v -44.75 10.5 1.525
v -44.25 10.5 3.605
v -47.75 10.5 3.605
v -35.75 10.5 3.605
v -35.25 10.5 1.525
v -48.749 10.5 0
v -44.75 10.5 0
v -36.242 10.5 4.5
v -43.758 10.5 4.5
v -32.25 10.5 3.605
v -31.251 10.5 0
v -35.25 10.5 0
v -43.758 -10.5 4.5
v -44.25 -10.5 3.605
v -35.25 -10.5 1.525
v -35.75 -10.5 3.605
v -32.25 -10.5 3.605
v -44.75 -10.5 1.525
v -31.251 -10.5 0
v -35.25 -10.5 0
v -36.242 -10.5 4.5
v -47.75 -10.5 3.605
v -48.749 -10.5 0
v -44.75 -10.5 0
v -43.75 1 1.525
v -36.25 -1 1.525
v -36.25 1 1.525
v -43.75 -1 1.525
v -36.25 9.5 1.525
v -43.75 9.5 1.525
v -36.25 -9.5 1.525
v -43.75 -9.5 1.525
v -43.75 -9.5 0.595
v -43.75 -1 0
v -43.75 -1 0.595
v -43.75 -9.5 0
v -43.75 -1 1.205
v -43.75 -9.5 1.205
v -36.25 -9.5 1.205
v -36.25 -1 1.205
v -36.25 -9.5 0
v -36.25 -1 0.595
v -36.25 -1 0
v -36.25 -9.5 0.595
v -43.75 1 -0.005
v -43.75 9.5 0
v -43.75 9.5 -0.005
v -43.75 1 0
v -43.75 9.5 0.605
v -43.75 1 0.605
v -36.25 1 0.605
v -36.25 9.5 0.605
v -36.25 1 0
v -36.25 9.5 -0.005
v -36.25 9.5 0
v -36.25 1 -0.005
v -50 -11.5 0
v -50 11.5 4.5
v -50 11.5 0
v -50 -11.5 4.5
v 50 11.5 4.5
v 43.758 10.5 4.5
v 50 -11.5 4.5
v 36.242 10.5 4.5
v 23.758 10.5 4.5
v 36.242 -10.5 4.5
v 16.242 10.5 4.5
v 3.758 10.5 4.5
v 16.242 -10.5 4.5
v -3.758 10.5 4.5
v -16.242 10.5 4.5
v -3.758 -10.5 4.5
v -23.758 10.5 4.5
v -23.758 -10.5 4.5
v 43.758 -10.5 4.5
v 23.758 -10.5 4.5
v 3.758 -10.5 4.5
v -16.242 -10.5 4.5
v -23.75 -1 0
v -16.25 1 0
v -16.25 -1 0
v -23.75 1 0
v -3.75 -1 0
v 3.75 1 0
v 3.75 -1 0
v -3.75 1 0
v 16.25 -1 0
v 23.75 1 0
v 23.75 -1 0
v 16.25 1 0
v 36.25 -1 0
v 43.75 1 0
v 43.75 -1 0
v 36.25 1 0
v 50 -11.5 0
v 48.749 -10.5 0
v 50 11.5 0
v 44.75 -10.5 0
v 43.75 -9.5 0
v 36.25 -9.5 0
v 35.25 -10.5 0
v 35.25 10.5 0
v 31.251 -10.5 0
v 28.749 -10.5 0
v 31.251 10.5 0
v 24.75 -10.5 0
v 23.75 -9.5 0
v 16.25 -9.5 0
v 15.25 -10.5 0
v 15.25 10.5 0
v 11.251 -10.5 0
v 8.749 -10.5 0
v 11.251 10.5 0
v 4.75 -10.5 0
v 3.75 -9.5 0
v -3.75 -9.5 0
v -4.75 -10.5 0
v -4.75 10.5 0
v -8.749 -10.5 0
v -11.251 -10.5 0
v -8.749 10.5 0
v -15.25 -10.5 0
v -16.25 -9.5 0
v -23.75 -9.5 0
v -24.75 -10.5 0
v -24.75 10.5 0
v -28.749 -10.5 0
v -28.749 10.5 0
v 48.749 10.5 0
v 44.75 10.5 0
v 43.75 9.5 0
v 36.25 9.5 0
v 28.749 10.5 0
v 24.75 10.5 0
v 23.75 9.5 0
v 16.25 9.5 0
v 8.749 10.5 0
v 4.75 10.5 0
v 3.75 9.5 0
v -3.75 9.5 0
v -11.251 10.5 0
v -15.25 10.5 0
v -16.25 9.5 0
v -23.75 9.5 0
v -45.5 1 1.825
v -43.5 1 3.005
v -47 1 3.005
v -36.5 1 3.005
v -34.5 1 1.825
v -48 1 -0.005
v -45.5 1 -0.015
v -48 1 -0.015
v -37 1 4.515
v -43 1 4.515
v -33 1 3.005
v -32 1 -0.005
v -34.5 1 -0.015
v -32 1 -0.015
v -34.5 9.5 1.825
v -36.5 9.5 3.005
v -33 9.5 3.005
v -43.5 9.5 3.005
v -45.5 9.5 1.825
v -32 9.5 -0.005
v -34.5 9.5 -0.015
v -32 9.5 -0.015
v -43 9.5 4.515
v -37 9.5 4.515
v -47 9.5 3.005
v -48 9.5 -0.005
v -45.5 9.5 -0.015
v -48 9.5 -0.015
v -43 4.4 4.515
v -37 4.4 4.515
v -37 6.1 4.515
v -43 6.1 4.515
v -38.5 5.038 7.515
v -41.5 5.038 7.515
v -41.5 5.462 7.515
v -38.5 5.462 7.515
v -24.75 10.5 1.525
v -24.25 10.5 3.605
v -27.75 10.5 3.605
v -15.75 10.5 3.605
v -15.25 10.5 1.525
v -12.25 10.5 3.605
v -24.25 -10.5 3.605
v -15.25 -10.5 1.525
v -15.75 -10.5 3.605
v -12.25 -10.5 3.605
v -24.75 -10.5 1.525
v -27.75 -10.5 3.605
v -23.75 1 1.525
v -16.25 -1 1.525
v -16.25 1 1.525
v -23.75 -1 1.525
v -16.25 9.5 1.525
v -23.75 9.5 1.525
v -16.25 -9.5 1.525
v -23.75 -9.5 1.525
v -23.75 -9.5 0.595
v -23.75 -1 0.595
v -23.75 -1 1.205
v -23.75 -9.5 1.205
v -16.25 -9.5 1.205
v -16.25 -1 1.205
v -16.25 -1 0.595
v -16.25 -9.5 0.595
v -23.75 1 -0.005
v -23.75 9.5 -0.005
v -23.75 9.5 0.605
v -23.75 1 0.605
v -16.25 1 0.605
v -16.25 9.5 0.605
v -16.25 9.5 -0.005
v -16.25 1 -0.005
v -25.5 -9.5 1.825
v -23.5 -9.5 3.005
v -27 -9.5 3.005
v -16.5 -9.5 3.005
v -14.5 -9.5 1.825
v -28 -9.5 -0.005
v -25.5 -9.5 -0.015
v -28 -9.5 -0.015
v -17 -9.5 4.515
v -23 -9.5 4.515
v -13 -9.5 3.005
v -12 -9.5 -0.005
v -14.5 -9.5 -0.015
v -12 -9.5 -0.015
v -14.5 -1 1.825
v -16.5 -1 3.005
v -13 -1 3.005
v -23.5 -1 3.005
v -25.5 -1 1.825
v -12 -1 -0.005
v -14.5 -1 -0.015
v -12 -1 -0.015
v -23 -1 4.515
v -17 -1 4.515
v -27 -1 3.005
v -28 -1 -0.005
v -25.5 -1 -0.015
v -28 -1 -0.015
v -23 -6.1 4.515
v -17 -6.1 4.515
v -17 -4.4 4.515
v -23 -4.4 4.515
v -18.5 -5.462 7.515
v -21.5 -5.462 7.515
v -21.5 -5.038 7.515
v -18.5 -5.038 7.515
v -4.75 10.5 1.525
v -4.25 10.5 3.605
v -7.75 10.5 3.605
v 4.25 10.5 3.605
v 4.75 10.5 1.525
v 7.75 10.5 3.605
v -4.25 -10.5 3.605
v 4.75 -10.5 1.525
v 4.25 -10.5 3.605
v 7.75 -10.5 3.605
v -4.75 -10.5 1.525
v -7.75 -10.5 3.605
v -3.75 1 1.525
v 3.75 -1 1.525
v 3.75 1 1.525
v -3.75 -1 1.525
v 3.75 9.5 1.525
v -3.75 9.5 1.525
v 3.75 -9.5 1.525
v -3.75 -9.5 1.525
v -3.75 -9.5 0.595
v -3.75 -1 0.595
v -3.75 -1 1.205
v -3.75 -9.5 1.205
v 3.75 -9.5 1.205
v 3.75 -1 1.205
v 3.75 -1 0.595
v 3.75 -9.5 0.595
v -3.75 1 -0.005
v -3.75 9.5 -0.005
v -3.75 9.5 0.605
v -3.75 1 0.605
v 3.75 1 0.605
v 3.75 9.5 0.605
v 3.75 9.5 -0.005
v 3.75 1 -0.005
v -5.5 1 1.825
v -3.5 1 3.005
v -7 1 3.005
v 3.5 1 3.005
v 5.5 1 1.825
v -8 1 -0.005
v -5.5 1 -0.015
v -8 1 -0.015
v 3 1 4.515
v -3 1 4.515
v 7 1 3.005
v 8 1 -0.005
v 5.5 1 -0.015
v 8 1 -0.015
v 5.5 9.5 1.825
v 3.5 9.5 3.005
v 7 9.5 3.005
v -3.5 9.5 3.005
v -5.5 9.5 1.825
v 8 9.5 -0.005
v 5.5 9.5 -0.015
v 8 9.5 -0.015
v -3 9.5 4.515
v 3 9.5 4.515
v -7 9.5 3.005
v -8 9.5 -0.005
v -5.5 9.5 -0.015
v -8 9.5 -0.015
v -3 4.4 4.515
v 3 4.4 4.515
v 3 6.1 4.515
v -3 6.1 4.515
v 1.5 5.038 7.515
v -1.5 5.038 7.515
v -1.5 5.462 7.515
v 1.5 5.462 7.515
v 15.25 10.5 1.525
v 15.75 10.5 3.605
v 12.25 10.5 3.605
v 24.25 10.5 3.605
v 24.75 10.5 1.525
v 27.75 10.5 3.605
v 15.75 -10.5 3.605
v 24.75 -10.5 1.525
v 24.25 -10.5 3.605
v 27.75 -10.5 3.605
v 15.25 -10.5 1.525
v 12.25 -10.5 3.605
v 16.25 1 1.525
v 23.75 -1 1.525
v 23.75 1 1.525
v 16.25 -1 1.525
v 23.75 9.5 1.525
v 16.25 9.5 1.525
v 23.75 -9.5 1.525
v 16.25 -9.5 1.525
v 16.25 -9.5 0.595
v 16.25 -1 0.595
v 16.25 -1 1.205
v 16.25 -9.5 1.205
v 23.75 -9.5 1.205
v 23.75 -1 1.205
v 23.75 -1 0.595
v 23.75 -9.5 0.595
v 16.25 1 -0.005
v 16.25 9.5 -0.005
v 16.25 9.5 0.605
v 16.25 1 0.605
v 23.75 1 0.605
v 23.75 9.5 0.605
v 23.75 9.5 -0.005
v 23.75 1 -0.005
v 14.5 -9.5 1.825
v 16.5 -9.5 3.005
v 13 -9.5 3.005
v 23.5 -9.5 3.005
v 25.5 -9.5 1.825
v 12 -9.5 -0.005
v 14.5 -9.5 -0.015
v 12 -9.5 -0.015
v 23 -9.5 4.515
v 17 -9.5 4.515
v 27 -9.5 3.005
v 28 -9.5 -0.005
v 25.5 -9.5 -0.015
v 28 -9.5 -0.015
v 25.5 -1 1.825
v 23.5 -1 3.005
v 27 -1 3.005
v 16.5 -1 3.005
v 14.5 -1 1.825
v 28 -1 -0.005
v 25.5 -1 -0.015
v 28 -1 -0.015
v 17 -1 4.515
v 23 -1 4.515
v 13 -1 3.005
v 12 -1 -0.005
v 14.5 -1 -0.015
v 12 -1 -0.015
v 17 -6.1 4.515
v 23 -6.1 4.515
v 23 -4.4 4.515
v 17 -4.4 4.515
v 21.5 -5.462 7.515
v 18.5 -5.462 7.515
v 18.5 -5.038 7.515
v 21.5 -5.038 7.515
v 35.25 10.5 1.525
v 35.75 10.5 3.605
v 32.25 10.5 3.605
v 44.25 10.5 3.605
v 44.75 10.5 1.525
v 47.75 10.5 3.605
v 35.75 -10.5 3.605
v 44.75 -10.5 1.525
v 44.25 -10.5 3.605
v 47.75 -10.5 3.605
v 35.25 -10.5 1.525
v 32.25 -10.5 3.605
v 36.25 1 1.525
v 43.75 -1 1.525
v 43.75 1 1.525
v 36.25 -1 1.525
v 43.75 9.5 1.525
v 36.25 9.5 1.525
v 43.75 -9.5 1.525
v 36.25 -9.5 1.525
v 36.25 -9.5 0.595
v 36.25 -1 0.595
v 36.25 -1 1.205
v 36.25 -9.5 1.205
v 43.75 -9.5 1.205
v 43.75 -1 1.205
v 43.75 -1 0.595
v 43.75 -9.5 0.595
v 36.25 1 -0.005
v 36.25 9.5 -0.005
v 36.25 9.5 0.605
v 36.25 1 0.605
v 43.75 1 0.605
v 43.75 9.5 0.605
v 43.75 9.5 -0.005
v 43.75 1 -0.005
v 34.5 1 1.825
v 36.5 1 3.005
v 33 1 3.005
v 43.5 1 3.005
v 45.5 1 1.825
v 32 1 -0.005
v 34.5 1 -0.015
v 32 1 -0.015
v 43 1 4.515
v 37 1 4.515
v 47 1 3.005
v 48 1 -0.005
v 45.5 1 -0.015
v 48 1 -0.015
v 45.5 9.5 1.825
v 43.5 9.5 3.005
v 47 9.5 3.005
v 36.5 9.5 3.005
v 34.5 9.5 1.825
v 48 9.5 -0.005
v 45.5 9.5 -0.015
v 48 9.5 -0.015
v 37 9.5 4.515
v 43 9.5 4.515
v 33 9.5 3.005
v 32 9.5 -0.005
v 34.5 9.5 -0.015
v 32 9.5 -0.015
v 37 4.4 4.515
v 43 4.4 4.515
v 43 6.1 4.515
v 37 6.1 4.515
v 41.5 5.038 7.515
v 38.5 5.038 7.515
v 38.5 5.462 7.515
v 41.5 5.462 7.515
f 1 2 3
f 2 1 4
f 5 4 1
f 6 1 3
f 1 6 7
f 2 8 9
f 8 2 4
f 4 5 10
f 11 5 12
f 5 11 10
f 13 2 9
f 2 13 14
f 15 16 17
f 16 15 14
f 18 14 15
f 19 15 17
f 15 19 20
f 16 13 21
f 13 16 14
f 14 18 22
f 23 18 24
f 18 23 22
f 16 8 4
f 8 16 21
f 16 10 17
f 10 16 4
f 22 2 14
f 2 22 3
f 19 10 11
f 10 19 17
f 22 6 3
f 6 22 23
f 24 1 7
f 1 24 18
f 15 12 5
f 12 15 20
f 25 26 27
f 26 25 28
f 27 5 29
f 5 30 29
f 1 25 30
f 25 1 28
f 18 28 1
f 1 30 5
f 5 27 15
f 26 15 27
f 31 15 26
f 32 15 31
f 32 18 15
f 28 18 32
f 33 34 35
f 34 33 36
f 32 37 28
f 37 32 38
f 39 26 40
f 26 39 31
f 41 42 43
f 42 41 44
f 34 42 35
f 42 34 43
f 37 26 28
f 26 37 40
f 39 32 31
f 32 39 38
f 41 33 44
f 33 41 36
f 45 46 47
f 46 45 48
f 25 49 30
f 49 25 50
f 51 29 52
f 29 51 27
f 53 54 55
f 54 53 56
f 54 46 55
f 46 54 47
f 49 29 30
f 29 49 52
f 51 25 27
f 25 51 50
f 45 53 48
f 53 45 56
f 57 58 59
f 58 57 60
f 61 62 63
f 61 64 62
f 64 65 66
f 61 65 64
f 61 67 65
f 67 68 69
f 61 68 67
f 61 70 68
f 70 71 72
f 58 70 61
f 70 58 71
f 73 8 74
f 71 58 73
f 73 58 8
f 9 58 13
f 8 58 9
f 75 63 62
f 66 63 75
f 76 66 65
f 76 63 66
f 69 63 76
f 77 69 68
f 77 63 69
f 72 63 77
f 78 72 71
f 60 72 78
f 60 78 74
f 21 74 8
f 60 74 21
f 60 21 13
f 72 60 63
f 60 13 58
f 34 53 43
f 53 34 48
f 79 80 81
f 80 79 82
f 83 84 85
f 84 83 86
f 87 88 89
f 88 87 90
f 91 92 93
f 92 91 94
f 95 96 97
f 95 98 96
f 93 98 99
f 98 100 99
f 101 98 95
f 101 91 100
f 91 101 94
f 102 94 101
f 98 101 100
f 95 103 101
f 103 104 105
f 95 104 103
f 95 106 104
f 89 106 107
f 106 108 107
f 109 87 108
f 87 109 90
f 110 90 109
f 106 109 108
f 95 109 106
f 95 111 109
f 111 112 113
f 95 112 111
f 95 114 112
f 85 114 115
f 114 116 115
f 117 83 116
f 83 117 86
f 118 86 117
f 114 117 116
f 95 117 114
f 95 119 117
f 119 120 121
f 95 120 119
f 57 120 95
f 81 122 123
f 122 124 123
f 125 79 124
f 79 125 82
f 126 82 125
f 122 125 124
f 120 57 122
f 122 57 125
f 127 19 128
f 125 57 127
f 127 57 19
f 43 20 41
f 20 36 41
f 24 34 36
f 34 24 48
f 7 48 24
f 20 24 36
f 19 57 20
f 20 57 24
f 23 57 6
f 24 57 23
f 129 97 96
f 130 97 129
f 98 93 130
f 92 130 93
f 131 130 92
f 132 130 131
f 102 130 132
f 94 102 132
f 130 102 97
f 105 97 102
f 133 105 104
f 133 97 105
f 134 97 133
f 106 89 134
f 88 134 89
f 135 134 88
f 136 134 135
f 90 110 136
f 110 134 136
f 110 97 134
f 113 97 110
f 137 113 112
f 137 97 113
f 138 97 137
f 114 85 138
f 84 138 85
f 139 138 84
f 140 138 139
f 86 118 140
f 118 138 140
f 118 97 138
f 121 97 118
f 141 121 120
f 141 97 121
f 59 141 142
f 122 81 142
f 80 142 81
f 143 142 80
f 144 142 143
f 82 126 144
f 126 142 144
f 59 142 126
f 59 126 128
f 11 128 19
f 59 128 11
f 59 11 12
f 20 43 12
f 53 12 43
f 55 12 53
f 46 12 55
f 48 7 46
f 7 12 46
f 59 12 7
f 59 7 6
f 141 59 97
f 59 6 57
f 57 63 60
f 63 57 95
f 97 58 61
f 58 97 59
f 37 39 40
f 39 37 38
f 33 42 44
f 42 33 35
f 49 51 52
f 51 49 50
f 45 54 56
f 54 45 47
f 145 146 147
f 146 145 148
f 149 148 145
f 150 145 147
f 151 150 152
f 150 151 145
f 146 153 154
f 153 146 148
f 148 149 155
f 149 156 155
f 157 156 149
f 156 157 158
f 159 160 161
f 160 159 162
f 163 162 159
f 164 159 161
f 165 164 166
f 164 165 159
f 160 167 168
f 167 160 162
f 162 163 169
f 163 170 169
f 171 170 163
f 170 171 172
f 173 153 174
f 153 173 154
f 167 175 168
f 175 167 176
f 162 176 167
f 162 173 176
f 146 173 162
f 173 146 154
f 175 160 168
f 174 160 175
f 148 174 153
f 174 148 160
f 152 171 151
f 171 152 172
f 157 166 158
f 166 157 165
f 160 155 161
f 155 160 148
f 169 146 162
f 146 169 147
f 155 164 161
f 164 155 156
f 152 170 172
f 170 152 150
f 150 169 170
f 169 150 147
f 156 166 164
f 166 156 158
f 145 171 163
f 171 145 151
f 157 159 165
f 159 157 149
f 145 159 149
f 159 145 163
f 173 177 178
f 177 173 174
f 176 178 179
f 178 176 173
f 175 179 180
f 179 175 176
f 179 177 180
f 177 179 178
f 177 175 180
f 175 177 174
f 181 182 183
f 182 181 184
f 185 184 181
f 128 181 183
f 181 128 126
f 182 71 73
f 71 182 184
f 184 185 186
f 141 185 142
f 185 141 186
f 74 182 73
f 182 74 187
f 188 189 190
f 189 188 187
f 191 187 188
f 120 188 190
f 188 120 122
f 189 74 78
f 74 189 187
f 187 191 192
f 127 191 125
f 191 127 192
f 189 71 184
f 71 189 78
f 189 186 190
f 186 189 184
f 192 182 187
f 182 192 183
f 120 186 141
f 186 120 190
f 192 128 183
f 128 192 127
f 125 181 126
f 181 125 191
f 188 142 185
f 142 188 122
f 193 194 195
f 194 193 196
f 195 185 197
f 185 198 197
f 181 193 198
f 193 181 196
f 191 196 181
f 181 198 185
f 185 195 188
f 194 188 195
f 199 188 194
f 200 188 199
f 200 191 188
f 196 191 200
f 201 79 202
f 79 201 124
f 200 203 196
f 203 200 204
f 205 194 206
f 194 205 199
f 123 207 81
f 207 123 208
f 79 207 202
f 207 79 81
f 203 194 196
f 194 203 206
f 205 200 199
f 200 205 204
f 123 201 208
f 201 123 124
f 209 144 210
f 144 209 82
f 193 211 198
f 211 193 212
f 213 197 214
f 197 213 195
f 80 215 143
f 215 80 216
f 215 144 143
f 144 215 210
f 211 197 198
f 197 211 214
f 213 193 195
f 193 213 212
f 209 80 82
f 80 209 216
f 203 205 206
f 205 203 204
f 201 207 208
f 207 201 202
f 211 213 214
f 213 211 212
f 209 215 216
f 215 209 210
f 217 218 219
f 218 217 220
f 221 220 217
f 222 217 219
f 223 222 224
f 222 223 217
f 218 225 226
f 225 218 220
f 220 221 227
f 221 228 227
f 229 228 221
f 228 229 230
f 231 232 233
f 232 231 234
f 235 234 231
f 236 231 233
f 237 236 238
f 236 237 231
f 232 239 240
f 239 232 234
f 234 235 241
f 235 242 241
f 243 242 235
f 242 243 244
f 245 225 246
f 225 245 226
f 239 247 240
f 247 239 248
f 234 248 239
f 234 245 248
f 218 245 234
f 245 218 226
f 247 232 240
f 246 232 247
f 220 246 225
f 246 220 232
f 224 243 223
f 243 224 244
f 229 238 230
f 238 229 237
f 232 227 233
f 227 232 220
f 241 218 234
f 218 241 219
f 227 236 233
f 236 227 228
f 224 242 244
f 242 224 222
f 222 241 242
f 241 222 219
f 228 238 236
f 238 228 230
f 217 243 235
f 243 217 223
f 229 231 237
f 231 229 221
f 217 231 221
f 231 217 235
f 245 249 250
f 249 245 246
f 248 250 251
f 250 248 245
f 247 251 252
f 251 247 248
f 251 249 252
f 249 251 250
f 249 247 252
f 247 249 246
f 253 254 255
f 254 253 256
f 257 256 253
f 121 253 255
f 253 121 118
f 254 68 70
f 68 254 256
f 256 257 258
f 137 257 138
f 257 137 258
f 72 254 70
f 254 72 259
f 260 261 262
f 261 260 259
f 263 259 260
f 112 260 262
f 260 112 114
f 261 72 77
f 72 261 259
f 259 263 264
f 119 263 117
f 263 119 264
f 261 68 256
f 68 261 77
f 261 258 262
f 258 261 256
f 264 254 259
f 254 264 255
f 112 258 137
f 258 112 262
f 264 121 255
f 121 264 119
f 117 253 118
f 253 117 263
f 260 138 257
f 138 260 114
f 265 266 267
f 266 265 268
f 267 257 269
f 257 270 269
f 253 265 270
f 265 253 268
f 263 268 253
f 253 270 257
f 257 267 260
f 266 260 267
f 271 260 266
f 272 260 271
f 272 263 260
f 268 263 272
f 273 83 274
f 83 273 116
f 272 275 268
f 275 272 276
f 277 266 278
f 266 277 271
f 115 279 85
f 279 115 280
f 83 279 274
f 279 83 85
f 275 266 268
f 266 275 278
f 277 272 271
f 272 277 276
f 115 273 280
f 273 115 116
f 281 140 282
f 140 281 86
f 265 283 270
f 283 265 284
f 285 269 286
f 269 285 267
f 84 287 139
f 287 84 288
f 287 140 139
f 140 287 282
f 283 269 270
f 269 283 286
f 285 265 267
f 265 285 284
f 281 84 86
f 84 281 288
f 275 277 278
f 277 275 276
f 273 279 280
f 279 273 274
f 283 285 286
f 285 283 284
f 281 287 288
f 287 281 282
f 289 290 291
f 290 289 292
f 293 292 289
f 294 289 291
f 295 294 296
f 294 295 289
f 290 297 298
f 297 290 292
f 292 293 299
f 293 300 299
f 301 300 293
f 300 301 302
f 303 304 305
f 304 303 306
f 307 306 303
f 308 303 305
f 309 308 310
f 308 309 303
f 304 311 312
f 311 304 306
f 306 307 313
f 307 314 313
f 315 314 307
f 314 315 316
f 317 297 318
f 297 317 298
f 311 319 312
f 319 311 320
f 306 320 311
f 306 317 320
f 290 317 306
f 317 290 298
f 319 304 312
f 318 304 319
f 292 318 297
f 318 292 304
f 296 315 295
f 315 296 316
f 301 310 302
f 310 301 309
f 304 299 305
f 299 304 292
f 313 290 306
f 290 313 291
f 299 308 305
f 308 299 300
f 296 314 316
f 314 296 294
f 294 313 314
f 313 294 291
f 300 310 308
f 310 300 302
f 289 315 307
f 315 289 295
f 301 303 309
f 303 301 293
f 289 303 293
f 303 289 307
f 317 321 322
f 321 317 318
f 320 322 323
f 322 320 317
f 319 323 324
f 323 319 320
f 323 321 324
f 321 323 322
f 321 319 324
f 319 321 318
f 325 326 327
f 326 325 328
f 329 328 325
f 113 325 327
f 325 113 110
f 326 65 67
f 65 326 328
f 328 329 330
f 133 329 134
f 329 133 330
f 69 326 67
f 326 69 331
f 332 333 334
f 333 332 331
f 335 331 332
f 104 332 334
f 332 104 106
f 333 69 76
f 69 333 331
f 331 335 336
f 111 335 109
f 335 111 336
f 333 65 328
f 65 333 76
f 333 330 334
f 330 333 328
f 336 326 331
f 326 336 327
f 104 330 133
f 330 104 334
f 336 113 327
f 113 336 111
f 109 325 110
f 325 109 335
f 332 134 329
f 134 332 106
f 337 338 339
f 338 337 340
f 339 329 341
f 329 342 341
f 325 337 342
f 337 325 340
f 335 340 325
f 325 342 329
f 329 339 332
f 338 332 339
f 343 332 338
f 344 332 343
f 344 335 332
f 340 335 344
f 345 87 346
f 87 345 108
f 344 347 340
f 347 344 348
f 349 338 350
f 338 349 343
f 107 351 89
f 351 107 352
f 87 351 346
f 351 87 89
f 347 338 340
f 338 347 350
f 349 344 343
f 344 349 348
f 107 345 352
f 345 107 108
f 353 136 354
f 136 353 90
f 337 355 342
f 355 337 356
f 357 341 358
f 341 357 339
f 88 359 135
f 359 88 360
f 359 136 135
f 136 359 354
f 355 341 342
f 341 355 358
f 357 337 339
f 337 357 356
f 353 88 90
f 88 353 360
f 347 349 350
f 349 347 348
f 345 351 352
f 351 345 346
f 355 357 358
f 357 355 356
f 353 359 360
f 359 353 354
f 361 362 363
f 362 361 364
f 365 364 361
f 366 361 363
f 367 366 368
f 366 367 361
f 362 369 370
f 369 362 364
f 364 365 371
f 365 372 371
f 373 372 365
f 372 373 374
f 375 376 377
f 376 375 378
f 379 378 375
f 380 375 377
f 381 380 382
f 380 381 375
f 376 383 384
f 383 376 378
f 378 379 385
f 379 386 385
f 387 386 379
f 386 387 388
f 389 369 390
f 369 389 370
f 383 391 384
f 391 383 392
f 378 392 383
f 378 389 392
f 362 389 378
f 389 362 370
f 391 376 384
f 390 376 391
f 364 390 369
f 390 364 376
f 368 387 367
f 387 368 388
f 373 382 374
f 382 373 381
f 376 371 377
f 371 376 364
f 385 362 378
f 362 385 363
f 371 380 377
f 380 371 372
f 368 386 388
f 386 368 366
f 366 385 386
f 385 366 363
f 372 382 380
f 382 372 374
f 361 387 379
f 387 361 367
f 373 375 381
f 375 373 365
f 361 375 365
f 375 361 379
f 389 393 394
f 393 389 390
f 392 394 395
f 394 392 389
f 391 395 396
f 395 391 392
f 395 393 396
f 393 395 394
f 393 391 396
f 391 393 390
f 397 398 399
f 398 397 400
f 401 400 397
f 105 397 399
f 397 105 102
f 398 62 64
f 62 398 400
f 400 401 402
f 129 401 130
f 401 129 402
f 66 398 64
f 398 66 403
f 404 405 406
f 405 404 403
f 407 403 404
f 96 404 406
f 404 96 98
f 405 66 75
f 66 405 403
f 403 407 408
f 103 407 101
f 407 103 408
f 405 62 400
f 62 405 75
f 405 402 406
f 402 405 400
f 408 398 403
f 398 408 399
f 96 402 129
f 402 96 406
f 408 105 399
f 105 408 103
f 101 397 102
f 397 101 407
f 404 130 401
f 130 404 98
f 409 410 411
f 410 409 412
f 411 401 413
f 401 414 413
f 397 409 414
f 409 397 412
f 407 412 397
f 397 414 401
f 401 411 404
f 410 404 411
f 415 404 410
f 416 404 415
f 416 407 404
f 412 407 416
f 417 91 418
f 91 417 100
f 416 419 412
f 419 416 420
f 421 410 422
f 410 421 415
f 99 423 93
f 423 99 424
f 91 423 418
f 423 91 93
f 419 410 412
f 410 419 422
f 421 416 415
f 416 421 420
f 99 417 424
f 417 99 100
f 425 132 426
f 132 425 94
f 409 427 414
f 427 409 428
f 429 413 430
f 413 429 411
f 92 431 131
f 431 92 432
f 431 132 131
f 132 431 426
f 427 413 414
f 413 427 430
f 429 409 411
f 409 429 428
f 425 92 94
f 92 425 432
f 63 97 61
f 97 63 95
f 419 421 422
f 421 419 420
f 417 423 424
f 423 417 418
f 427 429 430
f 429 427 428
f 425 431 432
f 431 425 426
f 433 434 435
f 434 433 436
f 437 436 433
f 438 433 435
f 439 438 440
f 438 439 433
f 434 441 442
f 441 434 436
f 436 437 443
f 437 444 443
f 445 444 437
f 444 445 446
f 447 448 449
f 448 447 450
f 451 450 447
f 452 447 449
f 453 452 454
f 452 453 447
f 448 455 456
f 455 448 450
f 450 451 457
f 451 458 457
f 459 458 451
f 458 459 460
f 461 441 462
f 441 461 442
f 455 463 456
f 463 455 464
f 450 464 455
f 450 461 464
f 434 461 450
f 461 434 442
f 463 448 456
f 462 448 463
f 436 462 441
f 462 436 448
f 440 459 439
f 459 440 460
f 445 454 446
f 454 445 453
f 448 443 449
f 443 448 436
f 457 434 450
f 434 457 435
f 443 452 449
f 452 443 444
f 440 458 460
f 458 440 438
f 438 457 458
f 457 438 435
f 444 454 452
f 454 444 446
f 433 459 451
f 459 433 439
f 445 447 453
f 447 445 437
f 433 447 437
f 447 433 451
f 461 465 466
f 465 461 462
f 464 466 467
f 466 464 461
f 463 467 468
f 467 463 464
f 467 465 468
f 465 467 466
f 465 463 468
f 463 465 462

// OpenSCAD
$fn = 20;

layerHeight = 0.30; // Typical for 0.4 to 0.6mm nozzle

NUMBER_OF_SWITCHES = 5; // Number Of Switches
MODE_CONE_SLIDER = false;
MODE_SWITCH_SLIDER = true;


baseThickness = layerHeight*15;
baseWidth = 23;
baseHeight = 20;

sliderRail = 10;
sliderWidthThickness = 1.5;
sliderHeightThickness = 2;

sliderWidth = baseWidth-sliderWidthThickness*2;
sliderHeight = baseHeight-sliderHeightThickness*2;

echo(baseThickness);



MODE_ADD_WINDOW = true;

module sliderBulk(heightTop, heightBottom, width, sliderRailW, sliderRailH=0, offsetX=0, offsetY=0, offsetZ=0, cutMode=false)
{
    difference()
    {
        // Slider Rails
        union()
        {
            hull()
            {
                translate([0, 0, baseThickness+0.01])
                    cube([heightTop-sliderRailW+offsetX, width+offsetY, 0.01], center = true);
                translate([0, 0, layerHeight*10+offsetZ])
                    cube([heightTop-sliderRailW+offsetX+1, width+offsetY, 0.01], center = true);
            }
            hull()
            {
                translate([0, 0, layerHeight*10+offsetZ])
                    cube([heightBottom+offsetX-2, width+offsetY, 0.01], center = true);
                translate([0, 0, -0.01])
                    cube([heightBottom+offsetX, width+offsetY, 0.01], center = true);
            }
        }
        // Slide flange to make it easier to slide over the tab
        if (0) //< Feature disabled for now due to potential tolerance issues. Also not sure if actually needed
        if (cutMode)
        {
            translate([(heightBottom-sliderRailW/2-offsetX)/2 -1/2, 0, 0])
                cylinder(r1=1.0, r2=0, h=sliderRailH);
            translate([-(heightBottom-sliderRailW/2-offsetX)/2 +1/2, 0, 0])
                cylinder(r1=1, r2=0, h=sliderRailH);
        }
        // Slider Bottom Rail
        hull()
        {
            translate([0, 0, sliderRailH+0.02])
                cube([heightBottom-sliderRailW/2-offsetX, width+offsetY+0.01, 0.01], center = true);
            translate([0, 0, -0.02])
                cube([heightBottom-sliderRailW/2-offsetX, width+offsetY+0.01, 0.01], center = true);
        }
    }

    // Slider Handle
    if (MODE_CONE_SLIDER)
    {
        translate([0, 0, baseThickness])
            color("grey")
            cylinder(r1=(heightTop-sliderRailW)/2, r2=(heightTop-sliderRailW)/2+2, h=layerHeight*10+0.01);
    }
    if (MODE_SWITCH_SLIDER)
    {            
        color("grey")
        hull()
        {
            translate([0, 0, baseThickness+0.01])
                cube([(heightTop-sliderRailW), width*0.2, 0.01], center = true);
            translate([0, 0, baseThickness+layerHeight*10+0.01])
                cube([(heightTop-sliderRailW)/2, width*0.05, 0.01], center = true);
        }
    }
}

module switch_model(flipSwitchState=false)
{
    union()
    { // Base
        xTol = 1.5;
        yTol = 1.0;
        windowWidth = sliderWidth/2-1.5;
        windowHeight = sliderHeight-sliderRail/2-xTol-2;
        difference()
        {
            translate([0,0,baseThickness/2])
                cube([baseHeight,baseWidth,baseThickness], center = true);
            sliderBulk(
                heightTop=sliderHeight,
                heightBottom=sliderHeight,
                width=sliderWidth,
                sliderRailW=sliderRail,
                sliderRailH=layerHeight*5,
                offsetX=xTol,
                offsetY=yTol,
                offsetZ=layerHeight*2,
                cutMode=true);
            
            if (MODE_ADD_WINDOW)
            {
                translate([0, -(baseWidth/2-windowWidth/2-sliderWidthThickness-0.5), layerHeight*3])
                    cube([windowHeight, windowWidth, layerHeight*4*2], center = true);
                translate([0, +(baseWidth/2-windowWidth/2-sliderWidthThickness-0.5), layerHeight*3])
                    cube([windowHeight, windowWidth, layerHeight*4*2], center = true);
            }
        }

        // Add Color Windows
        if (MODE_ADD_WINDOW)
        {
            color("green")
                translate([0, -(baseWidth/2-windowWidth/2-sliderWidthThickness-0.5), layerHeight*2/2+layerHeight*2])
                cube([windowHeight, windowWidth, layerHeight*2+0.01], center = true);
            color("red")
                translate([0, +(baseWidth/2-windowWidth/2-sliderWidthThickness-0.5), layerHeight*1])
                cube([windowHeight, windowWidth, layerHeight*2+0.01], center = true);
        }
    }

    union()
    { // Slider
        flangeCompensate = 0.5;
        silderPos = flipSwitchState ? -sliderWidth/4-flangeCompensate/2 : sliderWidth/4+flangeCompensate/2;
        translate([0,silderPos,0])
            sliderBulk(
                heightTop=sliderHeight, 
                heightBottom=sliderHeight, 
                width=sliderWidth/2-1-flangeCompensate,
                sliderRailW=sliderRail,
                sliderRailH=layerHeight*5+layerHeight*1);
    }
}


translate([-((NUMBER_OF_SWITCHES-1)*baseHeight)/2,0,0])
    for(i = [0:1:NUMBER_OF_SWITCHES-1])
        translate([baseHeight*i,0,0])
            switch_model(flipSwitchState=i%2);
